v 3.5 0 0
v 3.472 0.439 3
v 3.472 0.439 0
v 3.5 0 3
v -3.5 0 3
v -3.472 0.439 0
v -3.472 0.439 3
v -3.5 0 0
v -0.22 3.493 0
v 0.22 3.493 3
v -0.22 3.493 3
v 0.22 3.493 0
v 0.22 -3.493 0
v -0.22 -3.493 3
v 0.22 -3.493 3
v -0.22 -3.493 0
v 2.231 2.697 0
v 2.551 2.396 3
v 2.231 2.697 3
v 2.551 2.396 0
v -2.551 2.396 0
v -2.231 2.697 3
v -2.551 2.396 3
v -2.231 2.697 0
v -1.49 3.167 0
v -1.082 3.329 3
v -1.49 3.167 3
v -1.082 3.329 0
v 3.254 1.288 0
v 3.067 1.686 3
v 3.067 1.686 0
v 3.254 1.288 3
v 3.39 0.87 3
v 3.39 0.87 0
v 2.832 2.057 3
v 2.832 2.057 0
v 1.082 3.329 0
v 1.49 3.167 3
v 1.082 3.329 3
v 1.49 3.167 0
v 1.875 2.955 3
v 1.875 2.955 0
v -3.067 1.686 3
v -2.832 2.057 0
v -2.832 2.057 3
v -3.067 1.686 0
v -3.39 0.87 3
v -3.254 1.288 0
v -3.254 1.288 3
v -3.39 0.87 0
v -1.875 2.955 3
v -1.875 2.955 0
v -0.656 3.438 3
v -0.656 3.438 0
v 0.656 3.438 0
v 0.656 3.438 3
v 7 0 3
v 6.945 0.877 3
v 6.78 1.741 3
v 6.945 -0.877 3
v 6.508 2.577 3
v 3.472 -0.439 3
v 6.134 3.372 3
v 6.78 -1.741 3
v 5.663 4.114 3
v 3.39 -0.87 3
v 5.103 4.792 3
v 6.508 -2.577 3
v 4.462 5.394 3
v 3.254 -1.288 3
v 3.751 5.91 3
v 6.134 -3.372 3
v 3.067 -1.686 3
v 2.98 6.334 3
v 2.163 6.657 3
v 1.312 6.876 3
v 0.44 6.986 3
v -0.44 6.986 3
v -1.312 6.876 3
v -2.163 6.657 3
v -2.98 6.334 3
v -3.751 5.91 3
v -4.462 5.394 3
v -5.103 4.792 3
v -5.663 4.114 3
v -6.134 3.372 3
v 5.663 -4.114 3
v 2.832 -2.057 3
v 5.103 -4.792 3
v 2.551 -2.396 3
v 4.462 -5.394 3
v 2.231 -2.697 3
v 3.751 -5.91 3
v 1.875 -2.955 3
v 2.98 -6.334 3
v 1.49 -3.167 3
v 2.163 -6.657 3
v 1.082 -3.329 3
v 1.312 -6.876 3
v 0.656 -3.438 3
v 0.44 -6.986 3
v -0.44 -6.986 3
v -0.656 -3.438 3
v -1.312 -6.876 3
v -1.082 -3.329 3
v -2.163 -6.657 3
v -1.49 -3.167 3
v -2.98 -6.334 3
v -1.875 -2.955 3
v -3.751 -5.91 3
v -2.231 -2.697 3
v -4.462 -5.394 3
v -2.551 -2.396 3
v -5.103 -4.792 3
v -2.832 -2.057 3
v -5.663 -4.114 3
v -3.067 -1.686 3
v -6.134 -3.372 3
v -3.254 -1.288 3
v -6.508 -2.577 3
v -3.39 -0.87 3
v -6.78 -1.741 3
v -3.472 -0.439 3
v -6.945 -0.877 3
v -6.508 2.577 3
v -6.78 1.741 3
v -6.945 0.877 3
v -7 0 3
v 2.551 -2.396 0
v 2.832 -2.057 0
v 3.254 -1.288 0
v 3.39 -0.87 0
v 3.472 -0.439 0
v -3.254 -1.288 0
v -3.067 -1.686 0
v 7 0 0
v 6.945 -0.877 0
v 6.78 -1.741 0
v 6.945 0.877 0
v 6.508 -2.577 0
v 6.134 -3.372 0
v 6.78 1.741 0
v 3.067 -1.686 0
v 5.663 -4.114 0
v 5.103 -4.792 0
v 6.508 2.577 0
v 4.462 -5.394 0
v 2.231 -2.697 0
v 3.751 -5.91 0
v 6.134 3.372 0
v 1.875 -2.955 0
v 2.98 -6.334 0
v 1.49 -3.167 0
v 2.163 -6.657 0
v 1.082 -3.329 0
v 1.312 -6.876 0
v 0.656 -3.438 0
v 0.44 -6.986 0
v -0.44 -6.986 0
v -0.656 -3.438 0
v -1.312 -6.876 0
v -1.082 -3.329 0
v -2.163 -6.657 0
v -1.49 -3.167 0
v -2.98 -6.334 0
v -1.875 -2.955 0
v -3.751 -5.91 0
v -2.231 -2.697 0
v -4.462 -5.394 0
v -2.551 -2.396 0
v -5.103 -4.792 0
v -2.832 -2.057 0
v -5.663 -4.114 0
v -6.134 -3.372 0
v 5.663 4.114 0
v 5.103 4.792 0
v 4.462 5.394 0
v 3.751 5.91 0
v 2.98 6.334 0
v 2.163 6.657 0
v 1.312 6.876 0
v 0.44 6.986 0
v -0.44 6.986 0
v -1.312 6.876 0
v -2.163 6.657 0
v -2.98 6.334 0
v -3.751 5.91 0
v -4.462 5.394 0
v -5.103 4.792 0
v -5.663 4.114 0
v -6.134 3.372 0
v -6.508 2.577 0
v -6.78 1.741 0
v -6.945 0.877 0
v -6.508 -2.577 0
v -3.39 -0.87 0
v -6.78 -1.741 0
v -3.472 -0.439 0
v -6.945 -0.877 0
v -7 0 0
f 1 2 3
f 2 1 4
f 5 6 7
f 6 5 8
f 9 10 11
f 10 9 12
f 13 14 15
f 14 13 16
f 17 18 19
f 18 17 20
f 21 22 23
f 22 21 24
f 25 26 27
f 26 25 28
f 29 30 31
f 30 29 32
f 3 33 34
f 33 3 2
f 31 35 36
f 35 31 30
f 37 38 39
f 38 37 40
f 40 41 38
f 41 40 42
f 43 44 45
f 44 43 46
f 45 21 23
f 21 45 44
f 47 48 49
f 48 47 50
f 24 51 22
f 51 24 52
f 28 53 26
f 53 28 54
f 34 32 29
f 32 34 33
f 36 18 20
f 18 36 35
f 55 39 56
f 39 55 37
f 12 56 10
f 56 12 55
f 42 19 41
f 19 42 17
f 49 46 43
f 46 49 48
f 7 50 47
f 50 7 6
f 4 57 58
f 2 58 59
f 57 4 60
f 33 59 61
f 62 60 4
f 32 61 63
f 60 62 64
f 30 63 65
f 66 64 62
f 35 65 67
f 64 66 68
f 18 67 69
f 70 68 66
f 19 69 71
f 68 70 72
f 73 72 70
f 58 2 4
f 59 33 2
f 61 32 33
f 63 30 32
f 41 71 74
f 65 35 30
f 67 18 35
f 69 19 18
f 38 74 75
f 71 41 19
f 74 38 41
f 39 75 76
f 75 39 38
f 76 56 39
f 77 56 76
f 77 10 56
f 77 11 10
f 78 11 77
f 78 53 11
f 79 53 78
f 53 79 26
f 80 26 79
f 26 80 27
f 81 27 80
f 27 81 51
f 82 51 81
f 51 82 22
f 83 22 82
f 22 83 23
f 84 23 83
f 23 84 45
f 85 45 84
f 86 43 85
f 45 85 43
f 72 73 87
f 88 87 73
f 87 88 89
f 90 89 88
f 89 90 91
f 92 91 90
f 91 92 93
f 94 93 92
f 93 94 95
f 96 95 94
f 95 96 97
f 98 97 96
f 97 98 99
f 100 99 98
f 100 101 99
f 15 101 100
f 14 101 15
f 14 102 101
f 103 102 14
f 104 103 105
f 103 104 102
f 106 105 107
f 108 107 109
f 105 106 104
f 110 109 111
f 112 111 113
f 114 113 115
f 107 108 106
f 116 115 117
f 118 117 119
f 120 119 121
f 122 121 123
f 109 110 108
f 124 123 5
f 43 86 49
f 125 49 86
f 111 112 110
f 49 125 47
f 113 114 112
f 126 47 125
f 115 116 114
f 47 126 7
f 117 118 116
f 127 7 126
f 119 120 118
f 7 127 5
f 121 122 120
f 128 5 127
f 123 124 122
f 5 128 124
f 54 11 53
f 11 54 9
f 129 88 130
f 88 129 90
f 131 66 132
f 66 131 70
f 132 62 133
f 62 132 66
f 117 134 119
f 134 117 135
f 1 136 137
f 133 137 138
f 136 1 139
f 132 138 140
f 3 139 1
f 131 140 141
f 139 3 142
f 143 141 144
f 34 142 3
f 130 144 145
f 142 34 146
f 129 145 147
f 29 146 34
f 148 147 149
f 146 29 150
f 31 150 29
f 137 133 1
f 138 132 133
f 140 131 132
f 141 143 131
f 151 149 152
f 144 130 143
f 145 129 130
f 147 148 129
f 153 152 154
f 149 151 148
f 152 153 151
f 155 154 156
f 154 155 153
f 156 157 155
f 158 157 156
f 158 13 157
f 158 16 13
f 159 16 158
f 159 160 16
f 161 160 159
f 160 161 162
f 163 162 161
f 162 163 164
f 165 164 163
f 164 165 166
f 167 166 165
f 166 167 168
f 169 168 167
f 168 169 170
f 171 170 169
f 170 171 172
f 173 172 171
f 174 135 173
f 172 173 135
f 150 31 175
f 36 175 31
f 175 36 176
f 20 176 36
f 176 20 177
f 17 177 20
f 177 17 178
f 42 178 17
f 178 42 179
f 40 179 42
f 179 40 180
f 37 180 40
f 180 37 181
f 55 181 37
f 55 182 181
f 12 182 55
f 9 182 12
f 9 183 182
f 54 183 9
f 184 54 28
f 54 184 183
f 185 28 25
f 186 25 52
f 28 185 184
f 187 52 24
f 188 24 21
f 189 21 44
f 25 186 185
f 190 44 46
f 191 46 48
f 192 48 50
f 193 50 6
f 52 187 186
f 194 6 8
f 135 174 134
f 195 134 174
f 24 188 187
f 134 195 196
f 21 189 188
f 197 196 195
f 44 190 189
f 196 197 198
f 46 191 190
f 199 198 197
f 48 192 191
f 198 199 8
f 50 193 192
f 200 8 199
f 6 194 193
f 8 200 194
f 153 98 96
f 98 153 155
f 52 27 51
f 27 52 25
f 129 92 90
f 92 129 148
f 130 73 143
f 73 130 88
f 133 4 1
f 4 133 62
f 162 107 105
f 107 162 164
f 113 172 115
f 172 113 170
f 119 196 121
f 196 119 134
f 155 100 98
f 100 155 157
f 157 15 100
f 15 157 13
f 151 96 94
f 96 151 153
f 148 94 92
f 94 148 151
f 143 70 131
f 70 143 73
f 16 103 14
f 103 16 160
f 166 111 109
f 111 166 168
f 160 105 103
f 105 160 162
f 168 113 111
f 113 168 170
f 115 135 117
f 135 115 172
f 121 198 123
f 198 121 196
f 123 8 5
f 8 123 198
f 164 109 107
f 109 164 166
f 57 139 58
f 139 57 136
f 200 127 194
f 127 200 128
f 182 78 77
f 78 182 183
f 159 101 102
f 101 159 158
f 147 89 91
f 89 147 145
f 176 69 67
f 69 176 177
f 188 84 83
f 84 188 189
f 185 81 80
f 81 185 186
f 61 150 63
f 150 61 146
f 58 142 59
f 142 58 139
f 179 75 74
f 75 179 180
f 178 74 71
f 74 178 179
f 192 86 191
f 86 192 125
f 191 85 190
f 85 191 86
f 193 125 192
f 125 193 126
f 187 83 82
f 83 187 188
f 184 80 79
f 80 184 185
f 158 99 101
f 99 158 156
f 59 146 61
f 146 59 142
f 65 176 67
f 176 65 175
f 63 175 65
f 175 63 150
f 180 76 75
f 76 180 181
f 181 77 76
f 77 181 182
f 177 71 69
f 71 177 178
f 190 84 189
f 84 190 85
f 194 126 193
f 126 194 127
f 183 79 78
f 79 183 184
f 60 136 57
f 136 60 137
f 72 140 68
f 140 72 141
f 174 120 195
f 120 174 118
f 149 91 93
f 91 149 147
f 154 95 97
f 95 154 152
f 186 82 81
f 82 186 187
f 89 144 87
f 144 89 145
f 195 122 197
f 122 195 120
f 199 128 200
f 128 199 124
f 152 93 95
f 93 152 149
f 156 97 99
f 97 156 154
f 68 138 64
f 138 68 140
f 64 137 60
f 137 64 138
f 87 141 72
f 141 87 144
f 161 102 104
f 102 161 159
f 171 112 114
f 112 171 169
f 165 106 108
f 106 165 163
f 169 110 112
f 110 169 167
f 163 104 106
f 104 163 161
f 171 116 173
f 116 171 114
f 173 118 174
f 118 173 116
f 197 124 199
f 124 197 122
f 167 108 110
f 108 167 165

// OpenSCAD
$fn = 50;


difference() {
	union() {
		cylinder(h = 3, r = 7.0000000000);
	}
	union() {
		#translate(v = [0.0000000000, 0.0000000000, -100.0000000000]) {
			cylinder(h = 200, r = 3.0000000000);
		}
		#translate(v = [0.0000000000, 0.0000000000, -100.0000000000]) {
			cylinder(h = 200, r = 3.0000000000);
		}
		#translate(v = [0.0000000000, 0.0000000000, -100.0000000000]) {
			cylinder(h = 200, r = 3.0000000000);
		}
		#translate(v = [0.0000000000, 0.0000000000, -100.0000000000]) {
			cylinder(h = 200, r = 3.0000000000);
		}
		#cylinder(h = 3, r = 3.5000000000);
	}
}
